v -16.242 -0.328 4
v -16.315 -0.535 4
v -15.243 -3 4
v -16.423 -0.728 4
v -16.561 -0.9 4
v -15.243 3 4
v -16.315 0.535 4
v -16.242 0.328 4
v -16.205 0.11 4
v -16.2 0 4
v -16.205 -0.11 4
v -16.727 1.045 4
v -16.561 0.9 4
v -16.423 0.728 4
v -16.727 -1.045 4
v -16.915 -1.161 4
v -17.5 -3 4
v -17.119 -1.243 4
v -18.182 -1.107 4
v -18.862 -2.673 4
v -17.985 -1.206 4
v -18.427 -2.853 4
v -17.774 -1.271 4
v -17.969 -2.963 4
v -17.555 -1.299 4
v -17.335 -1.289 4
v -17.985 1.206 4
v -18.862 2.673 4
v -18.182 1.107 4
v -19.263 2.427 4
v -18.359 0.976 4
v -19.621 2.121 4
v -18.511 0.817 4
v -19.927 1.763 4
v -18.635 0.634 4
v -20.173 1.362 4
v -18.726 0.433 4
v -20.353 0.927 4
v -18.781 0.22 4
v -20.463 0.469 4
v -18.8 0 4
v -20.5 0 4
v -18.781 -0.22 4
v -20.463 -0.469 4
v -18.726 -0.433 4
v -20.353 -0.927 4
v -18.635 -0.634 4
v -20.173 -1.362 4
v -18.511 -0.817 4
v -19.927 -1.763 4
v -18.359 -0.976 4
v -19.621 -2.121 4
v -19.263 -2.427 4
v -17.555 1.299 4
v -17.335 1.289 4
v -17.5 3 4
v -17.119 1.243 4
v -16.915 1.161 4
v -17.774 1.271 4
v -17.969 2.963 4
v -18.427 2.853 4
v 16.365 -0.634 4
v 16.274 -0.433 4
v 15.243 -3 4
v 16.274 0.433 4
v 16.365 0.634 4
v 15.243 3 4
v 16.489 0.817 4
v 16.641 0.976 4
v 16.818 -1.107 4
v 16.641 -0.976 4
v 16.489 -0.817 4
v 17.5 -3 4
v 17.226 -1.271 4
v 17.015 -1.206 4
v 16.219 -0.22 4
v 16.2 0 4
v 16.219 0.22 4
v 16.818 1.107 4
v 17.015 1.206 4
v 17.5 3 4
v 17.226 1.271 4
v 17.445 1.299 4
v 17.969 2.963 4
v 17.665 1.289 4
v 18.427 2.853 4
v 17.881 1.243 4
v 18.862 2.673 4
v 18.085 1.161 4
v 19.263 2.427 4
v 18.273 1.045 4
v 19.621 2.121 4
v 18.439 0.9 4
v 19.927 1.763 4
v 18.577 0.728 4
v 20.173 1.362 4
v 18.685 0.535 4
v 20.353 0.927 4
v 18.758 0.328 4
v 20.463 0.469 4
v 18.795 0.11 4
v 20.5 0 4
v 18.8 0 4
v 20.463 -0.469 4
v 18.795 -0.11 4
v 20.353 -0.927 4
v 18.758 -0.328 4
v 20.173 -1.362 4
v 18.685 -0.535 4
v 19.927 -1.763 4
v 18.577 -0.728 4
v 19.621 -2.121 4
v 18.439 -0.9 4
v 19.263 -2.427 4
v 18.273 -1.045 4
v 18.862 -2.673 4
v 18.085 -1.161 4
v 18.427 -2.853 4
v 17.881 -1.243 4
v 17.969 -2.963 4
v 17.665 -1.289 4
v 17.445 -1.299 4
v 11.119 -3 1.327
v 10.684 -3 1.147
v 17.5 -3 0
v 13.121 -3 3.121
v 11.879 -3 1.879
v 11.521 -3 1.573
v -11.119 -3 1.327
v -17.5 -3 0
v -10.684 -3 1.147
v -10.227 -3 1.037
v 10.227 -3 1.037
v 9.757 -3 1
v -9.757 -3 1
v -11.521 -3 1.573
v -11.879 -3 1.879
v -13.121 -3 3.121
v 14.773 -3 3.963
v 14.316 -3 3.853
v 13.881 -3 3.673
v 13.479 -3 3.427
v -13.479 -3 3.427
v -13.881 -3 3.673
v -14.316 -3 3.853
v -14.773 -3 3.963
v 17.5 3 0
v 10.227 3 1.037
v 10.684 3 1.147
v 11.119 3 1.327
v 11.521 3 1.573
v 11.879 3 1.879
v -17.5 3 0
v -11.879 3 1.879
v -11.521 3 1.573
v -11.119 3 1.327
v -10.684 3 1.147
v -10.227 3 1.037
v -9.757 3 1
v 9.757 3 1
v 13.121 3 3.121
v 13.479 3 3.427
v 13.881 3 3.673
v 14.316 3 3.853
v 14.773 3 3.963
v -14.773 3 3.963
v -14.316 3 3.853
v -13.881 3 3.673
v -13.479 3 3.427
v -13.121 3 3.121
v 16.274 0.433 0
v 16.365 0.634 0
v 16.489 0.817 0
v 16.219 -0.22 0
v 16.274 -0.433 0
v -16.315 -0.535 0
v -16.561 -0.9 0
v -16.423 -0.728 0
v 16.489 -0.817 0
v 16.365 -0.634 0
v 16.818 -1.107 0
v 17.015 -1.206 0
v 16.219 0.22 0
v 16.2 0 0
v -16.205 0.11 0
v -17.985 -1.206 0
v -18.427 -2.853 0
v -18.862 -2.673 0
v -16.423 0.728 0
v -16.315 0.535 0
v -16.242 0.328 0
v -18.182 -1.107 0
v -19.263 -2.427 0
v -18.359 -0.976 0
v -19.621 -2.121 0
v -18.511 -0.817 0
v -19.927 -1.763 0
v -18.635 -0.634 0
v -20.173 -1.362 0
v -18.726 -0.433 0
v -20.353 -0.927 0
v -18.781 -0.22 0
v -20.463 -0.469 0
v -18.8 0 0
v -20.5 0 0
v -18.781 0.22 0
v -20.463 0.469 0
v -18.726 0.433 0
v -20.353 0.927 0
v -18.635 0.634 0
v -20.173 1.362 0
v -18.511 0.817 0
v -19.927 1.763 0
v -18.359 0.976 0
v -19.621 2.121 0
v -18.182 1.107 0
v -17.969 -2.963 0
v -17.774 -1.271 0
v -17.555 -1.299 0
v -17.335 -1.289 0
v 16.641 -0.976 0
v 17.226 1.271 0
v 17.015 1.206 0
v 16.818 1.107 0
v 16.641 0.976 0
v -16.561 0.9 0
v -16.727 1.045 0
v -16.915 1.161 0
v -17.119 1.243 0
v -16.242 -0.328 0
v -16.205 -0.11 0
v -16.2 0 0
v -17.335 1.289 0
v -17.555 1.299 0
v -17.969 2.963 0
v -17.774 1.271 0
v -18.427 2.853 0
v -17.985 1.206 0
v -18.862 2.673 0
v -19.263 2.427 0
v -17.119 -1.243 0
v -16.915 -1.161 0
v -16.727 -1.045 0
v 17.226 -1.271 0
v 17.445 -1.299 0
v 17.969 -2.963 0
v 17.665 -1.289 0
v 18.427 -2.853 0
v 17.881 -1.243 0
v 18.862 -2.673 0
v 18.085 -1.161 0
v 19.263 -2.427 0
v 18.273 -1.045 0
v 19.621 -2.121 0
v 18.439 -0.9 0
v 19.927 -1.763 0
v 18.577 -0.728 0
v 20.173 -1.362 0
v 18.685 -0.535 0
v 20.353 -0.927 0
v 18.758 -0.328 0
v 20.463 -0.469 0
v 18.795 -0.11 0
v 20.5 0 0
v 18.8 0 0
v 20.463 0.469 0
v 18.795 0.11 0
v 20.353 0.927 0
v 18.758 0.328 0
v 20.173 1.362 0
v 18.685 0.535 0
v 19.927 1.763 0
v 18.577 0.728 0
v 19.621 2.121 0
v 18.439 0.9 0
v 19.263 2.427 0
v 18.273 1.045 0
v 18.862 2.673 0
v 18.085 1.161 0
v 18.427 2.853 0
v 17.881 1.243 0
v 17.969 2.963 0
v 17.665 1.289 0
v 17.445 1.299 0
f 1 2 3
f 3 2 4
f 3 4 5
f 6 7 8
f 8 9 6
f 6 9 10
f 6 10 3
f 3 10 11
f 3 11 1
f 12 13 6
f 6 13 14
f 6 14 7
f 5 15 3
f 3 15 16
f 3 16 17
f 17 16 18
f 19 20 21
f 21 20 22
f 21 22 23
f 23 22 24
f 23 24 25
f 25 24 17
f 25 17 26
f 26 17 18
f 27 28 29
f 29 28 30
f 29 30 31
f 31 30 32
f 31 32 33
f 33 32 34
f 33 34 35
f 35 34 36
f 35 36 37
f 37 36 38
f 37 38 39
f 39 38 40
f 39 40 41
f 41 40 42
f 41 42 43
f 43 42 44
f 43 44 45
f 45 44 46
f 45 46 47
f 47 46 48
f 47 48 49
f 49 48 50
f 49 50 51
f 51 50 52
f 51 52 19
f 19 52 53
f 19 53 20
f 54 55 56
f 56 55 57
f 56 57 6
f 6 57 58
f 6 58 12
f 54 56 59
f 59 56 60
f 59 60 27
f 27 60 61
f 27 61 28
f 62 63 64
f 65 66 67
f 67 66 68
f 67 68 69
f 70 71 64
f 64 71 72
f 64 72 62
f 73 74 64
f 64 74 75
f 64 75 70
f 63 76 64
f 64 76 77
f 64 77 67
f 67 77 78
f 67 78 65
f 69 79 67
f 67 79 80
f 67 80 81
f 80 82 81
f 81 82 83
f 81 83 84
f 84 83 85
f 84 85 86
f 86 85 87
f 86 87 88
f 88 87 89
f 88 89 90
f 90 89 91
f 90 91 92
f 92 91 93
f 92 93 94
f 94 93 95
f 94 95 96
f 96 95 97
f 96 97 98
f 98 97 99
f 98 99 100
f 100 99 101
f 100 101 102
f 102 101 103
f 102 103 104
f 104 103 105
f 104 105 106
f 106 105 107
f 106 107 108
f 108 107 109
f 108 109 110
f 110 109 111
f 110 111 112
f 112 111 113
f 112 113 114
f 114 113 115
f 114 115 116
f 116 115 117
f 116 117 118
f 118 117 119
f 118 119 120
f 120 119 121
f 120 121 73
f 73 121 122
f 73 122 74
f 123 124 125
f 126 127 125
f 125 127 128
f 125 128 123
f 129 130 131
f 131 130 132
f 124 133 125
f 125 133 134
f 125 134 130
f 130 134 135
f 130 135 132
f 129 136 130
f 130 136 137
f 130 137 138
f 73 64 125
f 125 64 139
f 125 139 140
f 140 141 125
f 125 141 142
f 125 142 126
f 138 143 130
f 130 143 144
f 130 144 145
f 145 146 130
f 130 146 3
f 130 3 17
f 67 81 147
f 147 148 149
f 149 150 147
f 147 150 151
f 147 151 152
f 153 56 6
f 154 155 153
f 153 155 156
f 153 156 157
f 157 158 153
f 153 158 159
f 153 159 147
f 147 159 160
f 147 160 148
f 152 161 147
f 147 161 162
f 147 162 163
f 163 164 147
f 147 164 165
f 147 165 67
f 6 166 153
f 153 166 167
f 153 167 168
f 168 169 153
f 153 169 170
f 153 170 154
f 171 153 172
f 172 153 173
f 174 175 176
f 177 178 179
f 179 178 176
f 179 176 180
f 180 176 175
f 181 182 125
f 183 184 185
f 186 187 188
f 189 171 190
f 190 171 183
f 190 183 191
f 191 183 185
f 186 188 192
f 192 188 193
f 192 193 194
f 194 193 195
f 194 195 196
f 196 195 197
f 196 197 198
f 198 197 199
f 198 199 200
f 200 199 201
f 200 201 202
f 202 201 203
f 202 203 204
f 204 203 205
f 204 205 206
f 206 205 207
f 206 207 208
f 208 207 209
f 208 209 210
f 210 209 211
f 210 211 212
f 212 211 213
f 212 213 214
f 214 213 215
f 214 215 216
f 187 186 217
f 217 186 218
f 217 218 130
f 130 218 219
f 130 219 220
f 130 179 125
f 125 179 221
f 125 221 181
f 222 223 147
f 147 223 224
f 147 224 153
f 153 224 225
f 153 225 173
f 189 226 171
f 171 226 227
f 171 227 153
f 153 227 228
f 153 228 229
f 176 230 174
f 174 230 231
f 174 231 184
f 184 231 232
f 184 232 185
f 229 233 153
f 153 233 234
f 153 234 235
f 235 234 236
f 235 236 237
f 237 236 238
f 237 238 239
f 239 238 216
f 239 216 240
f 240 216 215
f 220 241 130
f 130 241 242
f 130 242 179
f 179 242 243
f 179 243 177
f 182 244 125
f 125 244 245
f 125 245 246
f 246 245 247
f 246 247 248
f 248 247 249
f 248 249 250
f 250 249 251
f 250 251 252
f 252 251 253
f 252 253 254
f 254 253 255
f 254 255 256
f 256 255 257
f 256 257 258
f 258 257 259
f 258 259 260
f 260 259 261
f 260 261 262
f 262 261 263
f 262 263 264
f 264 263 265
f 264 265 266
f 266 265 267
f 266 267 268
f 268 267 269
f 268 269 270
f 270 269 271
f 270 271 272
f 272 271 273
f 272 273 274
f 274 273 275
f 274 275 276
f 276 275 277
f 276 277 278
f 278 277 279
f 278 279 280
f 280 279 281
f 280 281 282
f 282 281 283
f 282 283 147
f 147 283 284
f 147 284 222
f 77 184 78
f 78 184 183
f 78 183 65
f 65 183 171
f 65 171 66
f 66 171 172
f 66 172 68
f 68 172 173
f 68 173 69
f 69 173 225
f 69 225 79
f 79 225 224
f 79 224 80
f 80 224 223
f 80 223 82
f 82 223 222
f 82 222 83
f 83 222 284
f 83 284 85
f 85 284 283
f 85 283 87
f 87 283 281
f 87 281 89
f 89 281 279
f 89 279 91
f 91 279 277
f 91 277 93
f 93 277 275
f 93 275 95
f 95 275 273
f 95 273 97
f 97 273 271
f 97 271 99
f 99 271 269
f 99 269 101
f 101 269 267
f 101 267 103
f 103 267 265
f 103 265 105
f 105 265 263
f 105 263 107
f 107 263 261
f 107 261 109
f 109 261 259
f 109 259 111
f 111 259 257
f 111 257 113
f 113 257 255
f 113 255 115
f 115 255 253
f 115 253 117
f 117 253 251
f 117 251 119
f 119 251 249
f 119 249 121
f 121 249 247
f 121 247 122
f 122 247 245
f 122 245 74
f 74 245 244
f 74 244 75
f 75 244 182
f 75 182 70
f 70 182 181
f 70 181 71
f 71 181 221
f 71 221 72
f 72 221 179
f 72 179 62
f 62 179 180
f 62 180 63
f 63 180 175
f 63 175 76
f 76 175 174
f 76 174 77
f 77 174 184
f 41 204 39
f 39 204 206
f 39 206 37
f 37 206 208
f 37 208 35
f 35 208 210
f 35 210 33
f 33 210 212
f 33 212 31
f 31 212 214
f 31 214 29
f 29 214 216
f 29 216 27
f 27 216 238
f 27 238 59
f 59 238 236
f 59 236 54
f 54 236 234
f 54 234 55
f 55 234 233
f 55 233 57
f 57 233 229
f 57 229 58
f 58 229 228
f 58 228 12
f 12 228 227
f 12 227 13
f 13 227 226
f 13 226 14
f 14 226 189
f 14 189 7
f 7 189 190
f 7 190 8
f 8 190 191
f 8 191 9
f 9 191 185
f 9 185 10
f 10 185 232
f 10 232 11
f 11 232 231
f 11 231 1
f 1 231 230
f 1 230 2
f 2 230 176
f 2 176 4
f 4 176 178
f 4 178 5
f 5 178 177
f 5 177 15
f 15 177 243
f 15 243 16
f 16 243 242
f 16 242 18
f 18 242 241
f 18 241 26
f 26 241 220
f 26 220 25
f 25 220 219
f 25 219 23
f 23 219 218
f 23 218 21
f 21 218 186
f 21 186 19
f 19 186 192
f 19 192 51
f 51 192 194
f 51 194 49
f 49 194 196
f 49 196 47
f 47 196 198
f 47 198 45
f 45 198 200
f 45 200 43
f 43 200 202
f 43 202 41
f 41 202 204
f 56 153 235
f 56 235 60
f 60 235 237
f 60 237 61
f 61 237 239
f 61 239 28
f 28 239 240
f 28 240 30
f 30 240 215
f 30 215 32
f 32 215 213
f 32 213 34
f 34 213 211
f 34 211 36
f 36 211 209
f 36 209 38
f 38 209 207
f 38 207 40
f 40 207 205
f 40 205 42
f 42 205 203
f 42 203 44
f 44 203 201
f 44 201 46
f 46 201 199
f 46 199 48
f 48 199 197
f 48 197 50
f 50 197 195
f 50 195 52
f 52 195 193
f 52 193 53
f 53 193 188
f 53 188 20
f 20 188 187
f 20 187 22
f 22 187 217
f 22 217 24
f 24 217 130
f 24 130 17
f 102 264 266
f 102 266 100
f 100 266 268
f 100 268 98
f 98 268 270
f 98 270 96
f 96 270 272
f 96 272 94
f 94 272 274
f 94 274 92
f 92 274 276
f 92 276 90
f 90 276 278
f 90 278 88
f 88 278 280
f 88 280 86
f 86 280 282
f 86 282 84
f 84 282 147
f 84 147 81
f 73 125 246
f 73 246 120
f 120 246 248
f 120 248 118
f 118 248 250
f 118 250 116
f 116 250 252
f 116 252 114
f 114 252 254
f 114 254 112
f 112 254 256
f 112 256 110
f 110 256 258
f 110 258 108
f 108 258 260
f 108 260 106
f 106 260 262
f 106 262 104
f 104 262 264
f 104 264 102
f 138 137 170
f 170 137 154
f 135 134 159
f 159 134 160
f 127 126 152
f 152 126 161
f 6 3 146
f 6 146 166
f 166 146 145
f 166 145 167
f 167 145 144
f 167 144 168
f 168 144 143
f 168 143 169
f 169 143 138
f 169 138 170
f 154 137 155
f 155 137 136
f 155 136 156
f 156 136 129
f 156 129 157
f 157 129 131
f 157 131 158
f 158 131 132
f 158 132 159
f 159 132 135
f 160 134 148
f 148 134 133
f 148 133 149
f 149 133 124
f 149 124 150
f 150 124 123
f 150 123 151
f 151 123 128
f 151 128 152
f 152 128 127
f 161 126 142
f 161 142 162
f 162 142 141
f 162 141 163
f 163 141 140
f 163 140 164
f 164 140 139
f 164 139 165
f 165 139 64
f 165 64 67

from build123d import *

# Parameters (mm, degrees)
SKETCH1_W               = 41
SKETCH1_H               = 6
SKETCH1_R               = 1.3
BOSS_EXTRUDE1_DEPTH     = 4
FILLET1_R               = 3
CUT_EXTRUDE1_DEPTH      = 22.731313812
CUT_EXTRUDE1_DEPTH_BACK = 22.731313812
FILLET2_R               = 3


with BuildPart() as part:
    # Sketch1 → Boss-Extrude1 (new body)
    with BuildSketch(Plane.XY):
        Rectangle(SKETCH1_W, SKETCH1_H)
        with Locations((17.5, 0)):
            Circle(SKETCH1_R, mode=Mode.SUBTRACT)
        with Locations((-17.5, 0)):
            Circle(SKETCH1_R, mode=Mode.SUBTRACT)
    extrude(amount=BOSS_EXTRUDE1_DEPTH)

    # Fillet1
    fillet1_edges = [part.edges().sort_by_distance(p)[0] for p in [
        (-20.5, -3, 2),
        (-20.5, 3, 2),
        (20.5, -3, 2),
        (20.5, 3, 2),
    ]]
    fillet(fillet1_edges, radius=FILLET1_R - 0.0001)  # a hair under: the kernel refuses the full size

    # Sketch2 → Cut-Extrude1 (cut, two sides: drawn at the far end of the back side and taken through both)
    with BuildSketch(Plane.XZ.offset(3).offset(-CUT_EXTRUDE1_DEPTH_BACK)):
        Polygon((-70.188274573, 60.188274573), (-14, 4), (-11, 1), (11, 1), (14, 4), (70.188274573, 60.188274573), (70.188274573, 219.112714467), (-70.188274573, 219.112714467), align=None)
    extrude(amount=CUT_EXTRUDE1_DEPTH + CUT_EXTRUDE1_DEPTH_BACK, mode=Mode.SUBTRACT)

    # Fillet2
    fillet2_edges = [part.edges().sort_by_distance(p)[0] for p in [
        (-11, 0, 1),
        (11, 0, 1),
        (14, 0, 4),
        (-14, 0, 4),
    ]]
    fillet(fillet2_edges, radius=FILLET2_R)


solid = part.part
